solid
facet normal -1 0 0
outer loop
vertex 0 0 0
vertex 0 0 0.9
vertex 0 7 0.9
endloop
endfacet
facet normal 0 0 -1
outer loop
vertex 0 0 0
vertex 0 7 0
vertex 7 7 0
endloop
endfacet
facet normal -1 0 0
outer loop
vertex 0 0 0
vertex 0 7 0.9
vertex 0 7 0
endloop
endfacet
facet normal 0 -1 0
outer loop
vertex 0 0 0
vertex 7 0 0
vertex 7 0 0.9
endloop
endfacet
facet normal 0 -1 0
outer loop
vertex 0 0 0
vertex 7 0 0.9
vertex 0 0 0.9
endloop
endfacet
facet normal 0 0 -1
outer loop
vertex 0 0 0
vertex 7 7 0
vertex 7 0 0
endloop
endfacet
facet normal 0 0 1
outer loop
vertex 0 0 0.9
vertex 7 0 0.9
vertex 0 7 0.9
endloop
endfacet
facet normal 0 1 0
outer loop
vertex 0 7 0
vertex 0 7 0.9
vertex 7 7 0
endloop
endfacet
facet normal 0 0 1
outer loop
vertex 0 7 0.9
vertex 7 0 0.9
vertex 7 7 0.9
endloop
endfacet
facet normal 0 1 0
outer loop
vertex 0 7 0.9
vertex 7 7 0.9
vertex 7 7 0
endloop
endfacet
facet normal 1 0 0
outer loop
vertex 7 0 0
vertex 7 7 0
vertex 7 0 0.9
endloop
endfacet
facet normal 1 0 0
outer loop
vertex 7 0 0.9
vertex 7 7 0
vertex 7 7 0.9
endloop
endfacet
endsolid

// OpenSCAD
/* Warning, this is a very basic generator with a lot of approximation 
input data : [VQFN, 4DW, 7x7x0.9mm, 48, , A, C04-00583A]
generated by com.zoubworld.electronics.cad.model3d.Basic
Date : Sun Feb 15 10:50:49 CET 2026
*/

//body
color("black")
translate([0,0,0])
cube([7.0,7.0,0.9], center=false);
